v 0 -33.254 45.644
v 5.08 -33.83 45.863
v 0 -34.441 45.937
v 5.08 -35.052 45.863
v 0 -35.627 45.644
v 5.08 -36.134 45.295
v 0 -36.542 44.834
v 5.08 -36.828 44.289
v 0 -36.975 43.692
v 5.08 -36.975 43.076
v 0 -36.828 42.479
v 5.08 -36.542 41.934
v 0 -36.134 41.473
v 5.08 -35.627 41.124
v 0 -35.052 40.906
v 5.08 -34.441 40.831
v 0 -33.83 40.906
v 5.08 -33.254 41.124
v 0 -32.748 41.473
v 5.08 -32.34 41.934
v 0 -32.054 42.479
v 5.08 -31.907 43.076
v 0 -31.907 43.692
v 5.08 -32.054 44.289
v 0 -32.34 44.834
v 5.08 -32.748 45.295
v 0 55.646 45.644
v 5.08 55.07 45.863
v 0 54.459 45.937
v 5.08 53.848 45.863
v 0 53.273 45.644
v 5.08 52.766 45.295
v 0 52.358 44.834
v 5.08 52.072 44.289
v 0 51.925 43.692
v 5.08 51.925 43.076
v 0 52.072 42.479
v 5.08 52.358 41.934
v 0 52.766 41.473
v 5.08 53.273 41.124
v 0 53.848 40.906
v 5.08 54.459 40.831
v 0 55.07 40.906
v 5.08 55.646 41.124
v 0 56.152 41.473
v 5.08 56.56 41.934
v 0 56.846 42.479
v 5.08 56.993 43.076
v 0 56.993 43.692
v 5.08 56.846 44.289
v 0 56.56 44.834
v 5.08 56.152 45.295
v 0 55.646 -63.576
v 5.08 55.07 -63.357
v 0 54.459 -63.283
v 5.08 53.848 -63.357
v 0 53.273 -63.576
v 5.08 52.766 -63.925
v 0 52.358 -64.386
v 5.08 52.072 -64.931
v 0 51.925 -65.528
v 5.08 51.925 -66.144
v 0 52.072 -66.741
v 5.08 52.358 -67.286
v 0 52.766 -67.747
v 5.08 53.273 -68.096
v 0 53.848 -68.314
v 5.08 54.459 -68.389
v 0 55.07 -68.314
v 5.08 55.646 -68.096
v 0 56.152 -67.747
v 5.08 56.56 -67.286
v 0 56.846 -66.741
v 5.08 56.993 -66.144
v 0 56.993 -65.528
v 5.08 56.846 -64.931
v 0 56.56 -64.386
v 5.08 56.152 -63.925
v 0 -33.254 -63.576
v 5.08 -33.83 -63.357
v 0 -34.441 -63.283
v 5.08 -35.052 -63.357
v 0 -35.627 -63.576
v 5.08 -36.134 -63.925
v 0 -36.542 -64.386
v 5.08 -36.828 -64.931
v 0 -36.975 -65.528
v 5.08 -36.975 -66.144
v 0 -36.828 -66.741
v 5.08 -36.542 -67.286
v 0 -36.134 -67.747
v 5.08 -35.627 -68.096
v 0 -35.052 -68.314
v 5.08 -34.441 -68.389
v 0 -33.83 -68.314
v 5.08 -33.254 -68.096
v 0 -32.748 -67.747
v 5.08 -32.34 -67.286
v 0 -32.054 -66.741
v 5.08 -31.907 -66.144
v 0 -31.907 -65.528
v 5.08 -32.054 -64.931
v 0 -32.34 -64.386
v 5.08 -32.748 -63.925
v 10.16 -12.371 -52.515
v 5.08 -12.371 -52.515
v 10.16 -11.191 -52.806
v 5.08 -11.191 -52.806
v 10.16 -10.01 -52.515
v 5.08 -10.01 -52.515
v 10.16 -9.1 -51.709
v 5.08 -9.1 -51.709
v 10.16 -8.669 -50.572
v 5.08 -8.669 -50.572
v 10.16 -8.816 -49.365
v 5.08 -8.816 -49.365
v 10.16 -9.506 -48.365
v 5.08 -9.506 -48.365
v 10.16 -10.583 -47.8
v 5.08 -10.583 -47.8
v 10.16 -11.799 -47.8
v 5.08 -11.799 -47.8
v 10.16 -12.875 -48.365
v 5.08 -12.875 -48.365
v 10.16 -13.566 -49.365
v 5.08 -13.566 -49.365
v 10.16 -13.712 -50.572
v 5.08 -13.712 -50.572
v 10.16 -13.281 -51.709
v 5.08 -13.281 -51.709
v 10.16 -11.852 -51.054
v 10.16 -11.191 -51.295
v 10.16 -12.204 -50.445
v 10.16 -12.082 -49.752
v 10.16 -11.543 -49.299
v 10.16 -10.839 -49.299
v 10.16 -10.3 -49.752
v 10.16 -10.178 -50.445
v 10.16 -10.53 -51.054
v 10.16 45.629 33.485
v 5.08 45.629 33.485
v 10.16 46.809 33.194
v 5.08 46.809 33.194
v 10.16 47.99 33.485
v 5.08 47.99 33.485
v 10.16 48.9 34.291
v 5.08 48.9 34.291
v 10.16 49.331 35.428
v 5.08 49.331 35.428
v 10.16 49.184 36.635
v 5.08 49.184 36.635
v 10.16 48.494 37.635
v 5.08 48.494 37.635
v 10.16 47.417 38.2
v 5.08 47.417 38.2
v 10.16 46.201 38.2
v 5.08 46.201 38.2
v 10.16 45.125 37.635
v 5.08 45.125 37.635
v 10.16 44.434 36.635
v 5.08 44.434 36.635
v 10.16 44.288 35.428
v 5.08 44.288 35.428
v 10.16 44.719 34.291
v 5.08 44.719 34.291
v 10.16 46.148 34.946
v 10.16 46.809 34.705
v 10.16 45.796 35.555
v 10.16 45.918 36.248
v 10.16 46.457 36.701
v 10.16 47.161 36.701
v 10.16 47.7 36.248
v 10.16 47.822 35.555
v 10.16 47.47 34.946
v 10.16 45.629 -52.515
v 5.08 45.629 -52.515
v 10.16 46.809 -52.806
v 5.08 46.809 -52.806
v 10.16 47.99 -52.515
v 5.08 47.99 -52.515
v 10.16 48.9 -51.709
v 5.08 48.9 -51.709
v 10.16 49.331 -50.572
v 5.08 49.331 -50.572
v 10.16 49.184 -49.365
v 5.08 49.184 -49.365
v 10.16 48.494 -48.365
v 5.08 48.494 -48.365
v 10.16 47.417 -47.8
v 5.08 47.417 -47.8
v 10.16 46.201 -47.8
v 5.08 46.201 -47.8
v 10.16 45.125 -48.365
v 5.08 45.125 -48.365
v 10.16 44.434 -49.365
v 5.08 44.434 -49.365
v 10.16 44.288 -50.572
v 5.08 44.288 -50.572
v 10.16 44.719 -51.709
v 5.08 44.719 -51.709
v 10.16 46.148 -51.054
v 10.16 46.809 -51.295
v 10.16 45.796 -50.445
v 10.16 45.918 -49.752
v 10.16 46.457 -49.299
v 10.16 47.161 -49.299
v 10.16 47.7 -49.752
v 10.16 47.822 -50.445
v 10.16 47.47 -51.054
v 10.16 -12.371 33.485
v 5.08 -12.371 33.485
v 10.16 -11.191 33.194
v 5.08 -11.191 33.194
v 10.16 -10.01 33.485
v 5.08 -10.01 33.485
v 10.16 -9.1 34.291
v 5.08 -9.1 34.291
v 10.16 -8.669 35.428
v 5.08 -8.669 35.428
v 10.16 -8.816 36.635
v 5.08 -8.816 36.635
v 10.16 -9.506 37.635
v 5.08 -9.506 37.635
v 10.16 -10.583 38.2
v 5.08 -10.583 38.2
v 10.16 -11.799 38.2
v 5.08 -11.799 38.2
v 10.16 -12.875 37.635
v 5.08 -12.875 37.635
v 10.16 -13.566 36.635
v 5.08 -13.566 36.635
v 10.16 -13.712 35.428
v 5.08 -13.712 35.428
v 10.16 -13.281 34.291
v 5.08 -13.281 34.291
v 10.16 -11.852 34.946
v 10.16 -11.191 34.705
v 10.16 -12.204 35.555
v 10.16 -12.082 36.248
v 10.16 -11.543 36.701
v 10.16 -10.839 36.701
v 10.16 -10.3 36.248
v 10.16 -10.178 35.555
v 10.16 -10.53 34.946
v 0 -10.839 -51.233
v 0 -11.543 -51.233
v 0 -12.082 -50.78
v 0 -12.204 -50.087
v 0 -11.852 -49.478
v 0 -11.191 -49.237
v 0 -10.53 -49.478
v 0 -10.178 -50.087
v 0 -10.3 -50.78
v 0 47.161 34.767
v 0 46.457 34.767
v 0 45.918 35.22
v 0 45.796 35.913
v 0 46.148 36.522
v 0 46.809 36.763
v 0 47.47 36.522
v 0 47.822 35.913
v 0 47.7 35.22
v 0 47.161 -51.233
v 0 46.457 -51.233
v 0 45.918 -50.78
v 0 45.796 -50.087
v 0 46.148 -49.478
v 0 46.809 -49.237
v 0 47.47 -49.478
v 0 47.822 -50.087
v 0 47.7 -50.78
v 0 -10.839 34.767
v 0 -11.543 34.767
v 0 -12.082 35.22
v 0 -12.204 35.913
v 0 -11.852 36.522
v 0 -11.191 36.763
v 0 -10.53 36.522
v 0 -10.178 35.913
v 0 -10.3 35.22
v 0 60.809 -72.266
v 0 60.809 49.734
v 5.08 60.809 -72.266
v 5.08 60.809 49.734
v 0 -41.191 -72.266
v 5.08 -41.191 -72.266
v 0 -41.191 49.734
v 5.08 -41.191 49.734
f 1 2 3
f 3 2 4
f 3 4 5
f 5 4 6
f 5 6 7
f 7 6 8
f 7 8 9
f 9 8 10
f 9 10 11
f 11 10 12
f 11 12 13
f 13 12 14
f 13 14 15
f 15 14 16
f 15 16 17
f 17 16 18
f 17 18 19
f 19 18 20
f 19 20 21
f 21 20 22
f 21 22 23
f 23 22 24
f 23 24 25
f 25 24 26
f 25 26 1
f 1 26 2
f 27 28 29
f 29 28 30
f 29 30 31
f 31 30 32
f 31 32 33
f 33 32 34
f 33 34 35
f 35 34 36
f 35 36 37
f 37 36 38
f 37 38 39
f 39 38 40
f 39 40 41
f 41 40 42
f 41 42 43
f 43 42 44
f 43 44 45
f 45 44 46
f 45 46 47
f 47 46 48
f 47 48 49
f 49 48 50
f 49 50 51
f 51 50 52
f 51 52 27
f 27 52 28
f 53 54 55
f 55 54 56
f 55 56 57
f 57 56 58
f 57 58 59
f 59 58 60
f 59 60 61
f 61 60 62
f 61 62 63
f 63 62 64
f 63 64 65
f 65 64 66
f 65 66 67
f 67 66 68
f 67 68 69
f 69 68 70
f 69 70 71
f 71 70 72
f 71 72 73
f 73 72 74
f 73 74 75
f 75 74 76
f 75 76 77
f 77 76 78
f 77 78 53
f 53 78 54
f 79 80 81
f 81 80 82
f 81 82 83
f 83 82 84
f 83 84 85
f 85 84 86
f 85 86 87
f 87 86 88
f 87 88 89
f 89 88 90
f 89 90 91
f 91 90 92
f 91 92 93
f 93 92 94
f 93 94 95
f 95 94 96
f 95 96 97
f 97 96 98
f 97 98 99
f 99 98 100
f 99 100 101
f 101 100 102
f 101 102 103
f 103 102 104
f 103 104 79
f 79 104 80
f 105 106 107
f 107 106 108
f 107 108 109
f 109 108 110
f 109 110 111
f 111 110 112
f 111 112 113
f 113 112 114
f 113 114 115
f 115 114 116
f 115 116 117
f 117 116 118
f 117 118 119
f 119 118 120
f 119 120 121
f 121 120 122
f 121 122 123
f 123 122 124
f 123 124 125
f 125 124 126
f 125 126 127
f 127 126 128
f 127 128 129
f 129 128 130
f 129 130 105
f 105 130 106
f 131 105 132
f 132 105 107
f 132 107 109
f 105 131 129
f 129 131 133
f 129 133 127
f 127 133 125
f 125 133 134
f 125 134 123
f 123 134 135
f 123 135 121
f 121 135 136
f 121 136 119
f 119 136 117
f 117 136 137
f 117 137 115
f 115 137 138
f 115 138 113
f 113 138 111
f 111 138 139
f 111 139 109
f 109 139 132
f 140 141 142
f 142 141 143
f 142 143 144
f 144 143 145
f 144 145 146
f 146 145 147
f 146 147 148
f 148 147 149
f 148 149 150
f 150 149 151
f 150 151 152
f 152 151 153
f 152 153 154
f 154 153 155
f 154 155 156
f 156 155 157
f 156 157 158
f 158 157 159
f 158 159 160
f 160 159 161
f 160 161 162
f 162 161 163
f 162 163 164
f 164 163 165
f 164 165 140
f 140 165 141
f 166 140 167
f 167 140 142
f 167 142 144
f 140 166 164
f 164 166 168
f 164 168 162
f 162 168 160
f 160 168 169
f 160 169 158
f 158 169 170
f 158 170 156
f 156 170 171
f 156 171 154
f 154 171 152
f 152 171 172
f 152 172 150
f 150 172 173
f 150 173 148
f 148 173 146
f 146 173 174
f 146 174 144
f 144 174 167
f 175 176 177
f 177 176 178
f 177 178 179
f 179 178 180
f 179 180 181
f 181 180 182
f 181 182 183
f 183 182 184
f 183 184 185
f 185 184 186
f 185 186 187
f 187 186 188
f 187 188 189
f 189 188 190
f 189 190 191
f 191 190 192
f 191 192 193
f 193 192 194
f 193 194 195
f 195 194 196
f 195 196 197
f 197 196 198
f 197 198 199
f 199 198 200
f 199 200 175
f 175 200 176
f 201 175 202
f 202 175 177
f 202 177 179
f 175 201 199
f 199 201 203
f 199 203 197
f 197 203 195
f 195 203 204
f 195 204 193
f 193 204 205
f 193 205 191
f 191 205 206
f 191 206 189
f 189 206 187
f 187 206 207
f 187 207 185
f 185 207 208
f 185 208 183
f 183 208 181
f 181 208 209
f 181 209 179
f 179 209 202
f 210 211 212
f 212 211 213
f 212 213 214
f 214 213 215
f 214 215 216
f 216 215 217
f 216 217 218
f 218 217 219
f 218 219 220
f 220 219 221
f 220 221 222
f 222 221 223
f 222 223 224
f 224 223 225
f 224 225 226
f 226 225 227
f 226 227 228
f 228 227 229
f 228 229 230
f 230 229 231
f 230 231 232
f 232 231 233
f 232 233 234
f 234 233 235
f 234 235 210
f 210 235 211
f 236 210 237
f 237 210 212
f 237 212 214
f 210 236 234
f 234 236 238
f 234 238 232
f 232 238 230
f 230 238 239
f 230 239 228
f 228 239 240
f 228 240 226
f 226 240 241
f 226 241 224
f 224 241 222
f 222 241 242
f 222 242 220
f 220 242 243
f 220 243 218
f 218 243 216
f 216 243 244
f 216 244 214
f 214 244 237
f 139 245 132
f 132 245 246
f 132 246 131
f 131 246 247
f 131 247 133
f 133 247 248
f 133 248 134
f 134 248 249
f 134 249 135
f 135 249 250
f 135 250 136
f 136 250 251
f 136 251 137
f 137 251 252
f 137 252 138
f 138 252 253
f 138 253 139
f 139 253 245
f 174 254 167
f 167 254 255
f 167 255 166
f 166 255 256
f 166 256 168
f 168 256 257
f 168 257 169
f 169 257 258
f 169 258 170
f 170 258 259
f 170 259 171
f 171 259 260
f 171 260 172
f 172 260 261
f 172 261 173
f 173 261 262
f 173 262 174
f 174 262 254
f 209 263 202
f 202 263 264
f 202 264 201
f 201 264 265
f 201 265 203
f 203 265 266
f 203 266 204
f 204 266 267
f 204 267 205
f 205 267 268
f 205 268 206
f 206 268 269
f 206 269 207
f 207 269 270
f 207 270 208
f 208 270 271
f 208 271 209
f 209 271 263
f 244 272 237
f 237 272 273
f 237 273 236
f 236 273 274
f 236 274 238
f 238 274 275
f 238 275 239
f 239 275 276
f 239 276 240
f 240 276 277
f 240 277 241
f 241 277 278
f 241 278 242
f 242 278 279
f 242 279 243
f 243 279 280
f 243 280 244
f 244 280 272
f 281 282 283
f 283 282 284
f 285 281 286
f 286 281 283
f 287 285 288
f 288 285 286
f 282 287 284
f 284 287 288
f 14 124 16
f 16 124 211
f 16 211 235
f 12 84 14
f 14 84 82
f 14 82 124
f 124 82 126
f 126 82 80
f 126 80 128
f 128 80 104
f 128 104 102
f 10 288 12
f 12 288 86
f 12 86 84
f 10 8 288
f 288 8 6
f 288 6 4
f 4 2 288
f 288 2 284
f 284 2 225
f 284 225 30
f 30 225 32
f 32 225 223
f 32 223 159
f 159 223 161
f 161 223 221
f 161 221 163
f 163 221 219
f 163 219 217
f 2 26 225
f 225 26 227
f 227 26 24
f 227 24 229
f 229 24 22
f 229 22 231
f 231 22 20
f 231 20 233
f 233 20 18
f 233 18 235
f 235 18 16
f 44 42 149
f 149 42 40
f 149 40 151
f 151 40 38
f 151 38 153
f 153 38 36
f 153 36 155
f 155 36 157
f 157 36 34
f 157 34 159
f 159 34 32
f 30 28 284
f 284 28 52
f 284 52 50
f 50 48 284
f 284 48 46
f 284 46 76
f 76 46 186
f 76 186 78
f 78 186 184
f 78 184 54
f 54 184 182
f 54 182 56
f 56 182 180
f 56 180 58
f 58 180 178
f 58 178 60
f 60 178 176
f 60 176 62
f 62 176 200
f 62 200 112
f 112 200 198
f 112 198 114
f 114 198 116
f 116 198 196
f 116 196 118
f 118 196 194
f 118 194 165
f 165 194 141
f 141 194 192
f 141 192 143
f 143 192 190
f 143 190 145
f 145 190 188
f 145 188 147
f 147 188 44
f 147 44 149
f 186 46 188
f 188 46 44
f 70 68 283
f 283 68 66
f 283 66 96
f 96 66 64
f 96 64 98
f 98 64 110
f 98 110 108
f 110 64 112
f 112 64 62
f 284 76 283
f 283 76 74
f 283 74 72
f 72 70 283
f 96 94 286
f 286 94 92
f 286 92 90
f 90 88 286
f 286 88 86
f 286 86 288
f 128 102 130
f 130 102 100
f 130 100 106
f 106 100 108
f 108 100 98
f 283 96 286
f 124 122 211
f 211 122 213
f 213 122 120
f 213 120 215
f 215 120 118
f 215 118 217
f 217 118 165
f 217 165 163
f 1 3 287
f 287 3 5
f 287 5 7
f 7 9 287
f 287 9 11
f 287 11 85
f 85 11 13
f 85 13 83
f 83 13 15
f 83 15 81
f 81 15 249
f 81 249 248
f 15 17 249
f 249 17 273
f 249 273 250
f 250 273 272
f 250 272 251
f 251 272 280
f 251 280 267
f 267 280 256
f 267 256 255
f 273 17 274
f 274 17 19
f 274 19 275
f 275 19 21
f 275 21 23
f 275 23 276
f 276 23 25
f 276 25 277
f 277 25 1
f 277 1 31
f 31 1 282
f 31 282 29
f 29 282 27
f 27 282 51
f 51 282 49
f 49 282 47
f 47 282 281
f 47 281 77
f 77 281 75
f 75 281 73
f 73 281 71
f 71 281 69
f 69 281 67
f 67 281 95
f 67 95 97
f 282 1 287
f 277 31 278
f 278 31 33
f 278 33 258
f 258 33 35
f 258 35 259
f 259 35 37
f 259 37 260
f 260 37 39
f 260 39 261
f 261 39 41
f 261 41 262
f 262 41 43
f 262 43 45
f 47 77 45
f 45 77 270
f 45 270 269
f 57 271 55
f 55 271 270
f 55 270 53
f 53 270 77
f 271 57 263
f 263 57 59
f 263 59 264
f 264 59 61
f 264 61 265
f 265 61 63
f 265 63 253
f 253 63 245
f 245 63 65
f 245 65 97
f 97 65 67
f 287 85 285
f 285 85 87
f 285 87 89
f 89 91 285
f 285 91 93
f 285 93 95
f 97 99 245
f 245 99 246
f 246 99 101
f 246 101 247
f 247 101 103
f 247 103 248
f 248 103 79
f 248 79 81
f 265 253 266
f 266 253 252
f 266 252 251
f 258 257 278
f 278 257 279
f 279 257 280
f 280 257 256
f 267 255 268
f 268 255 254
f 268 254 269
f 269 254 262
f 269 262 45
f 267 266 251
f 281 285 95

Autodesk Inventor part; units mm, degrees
ref_plane "YZ Plane" through (0, 0, 0) normal (1, 0, 0) x (0, 1, 0)
ref_plane "XZ Plane" through (0, 0, 0) normal (0, 1, 0) x (-1, 0, 0)
ref_plane "XY Plane" through (0, 0, 0) normal (0, 0, 1) x (1, 0, 0)
sketch "Sketch1" plane through (0, 0, 0) normal (1, 0, 0) x (0, 1, 0)
  line L0 (60.8092, 49.7341) -> (-41.1908, 49.7341)
  line L1 (-41.1908, 49.7341) -> (-41.1908, -72.2659)
  line L2 (-41.1908, -72.2659) -> (60.8092, -72.2659)
  line L3 (60.8092, -72.2659) -> (60.8092, 49.7341)
  point P0 (0, 0)
  dimension "d0" = 122
  dimension "d1" = 102
extrude "Extrusion1" add sketch "Sketch1" along normal blind 5.08
sketch "Sketch2" plane through (5.08, 0, 0) normal (1, 0, 0) x (0, 0, -1)
  line L0 (-49.7341, 60.8092) -> (-49.7341, -41.1908) projected
  line L1 (72.2659, 60.8092) -> (-49.7341, 60.8092) projected
  point P0 (0, 0)
  point P1 (-35.7341, 46.8092)
  point P2 (50.2659, 46.8092)
  point P3 (50.2659, -11.1908)
  point P4 (-35.7341, -11.1908)
  dimension "d5" = 0
  dimension "d15" = 14
  dimension "d16" = 14
  dimension "d17" = 0
  dimension "d18" = 72
  dimension "d19" = 100
  dimension "d20" = 0
  dimension "d21" = 0
hole "Hole1" at (5.08, 46.8092, 35.7341) at (5.08, 46.8092, -50.2659) at (5.08, -11.1908, -50.2659) at (5.08, -11.1908, 35.7341) direction (-1, 0, 0) diameter 2.0574 end through all clearance for "Flat Head Machine Screw (82)" size "#1" standard "Ansi Unified Screw Threads"
sketch "Sketch3" plane through (5.08, 0, 0) normal (1, 0, 0) x (0, 0, -1)
  circle A0 centre (-35.7341, 46.8092) radius 1.0287 projected
  circle A1 centre (-35.7341, 46.8092) radius 2.54
  circle A2 centre (50.2659, 46.8092) radius 1.0287 projected
  circle A3 centre (50.2659, 46.8092) radius 2.54
  circle A4 centre (50.2659, -11.1908) radius 1.0287 projected
  circle A5 centre (50.2659, -11.1908) radius 2.54
  circle A6 centre (-35.7341, -11.1908) radius 1.0287 projected
  circle A7 centre (-35.7341, -11.1908) radius 2.54
  point P0 (0, 0)
  dimension "d22" = 5.08
  dimension "d23" = 5.08
  dimension "d24" = 5.08
  dimension "d25" = 5.08
extrude "Extrusion2" add sketch "Sketch3" along normal blind 5.08
sketch "Sketch4" plane through (5.08, 0, 0) normal (1, 0, 0) x (0, 0, -1)
  line L0 (-49.7341, 60.8092) -> (-49.7341, -41.1908) projected
  line L1 (72.2659, 60.8092) -> (-49.7341, 60.8092) projected
  point P0 (0, 0)
  point P1 (-43.3841, 54.4592)
  point P2 (65.8359, 54.4592)
  point P3 (-43.3841, -34.4408)
  point P4 (65.8359, -34.4408)
  dimension "d28" = 6.35
  dimension "d29" = 6.35
  dimension "d30" = 109.22
  dimension "d31" = 0
  dimension "d32" = 88.9
  dimension "d33" = 0
  dimension "d34" = 0
  dimension "d35" = 0
hole "Hole2" at (5.08, 54.4592, 43.3841) at (5.08, 54.4592, -65.8359) at (5.08, -34.4408, 43.3841) at (5.08, -34.4408, -65.8359) direction (-1, 0, 0) diameter 5.1054 end through all clearance for "Flat Head Machine Screw (82)" size "#10" standard "Ansi Unified Screw Threads"
properties part number "JetsonPlate"
